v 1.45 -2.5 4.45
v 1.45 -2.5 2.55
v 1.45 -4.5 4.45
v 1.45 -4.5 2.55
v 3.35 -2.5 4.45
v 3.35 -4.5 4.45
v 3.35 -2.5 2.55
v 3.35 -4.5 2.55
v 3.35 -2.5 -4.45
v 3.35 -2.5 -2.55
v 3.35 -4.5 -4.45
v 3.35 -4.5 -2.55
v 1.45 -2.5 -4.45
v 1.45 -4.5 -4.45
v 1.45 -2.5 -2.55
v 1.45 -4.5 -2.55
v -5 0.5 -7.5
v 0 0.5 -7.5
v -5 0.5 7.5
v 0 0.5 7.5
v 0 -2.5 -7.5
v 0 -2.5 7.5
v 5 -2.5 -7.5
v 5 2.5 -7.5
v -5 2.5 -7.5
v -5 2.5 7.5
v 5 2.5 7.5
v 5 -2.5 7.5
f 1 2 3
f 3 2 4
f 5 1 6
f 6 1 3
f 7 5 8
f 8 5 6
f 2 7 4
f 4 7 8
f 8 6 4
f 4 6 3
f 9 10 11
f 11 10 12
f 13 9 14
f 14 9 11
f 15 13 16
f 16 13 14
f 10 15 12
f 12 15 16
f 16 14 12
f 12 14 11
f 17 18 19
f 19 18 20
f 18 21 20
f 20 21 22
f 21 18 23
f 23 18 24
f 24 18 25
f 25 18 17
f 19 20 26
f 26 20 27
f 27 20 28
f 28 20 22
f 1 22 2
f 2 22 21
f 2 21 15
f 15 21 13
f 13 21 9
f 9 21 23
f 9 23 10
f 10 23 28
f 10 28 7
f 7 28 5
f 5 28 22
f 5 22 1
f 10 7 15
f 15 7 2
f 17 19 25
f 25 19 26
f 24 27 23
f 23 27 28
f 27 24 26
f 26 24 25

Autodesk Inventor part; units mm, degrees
ref_plane "YZ Plane" through (0, 0, 0) normal (1, 0, 0) x (0, 1, 0)
ref_plane "XZ Plane" through (0, 0, 0) normal (0, 1, 0) x (-1, 0, 0)
ref_plane "XY Plane" through (0, 0, 0) normal (0, 0, 1) x (1, 0, 0)
sketch "Sketch1" plane through (0, 0, 0) normal (0, 1, 0) x (-1, 0, 0)
  line L0 (-5, 7.5) -> (5, 7.5)
  line L1 (5, 7.5) -> (5, -7.5)
  line L2 (5, -7.5) -> (-5, -7.5)
  line L3 (-5, -7.5) -> (-5, 7.5)
  line L4 (-5, 7.5) -> (5, -7.5) construction
  line L5 (5, 7.5) -> (-5, -7.5) construction
  point P0 (0, 0)
  dimension "d0" = 10
  dimension "d1" = 15
extrude "Extrusion1" add sketch "Sketch1" along normal mid plane 5
sketch "Sketch2" plane through (-5, 2.5, 7.5) normal (0, 0, 1) x (1, 0, 0)
  line L0 (0, 0) -> (0, -5) projected
  line L1 (5, -2) -> (0, -2)
  line L2 (0, -2) -> (0, -5)
  line L3 (0, -5) -> (5, -5)
  line L4 (5, -5) -> (5, -2)
  line L5 (5, -2) -> (0, -5) construction
  line L6 (0, -2) -> (5, -5) construction
  point P0 (5, -2.5)
  point P1 (2.5, -3.5)
  dimension "d4" = 5
  dimension "d13" = 3
extrude "Extrusion2" cut sketch "Sketch2" against normal through all
sketch "Sketch3" plane through (0, -2.5, 0) normal (0, -1, 0) x (1, 0, 0)
  line L0 (3.4, 4.5) -> (1.4, 4.5) construction
  line L1 (1.4, 4.5) -> (1.4, 2.5) construction
  line L2 (1.4, 2.5) -> (3.4, 2.5) construction
  line L3 (3.4, 2.5) -> (3.4, 4.5) construction
  line L4 (3.4, 4.5) -> (1.4, 2.5) construction
  line L5 (1.4, 4.5) -> (3.4, 2.5) construction
  line L6 (3.4, -2.5) -> (1.4, -2.5) construction
  line L7 (1.4, -2.5) -> (1.4, -4.5) construction
  line L8 (1.4, -4.5) -> (3.4, -4.5) construction
  line L9 (3.4, -4.5) -> (3.4, -2.5) construction
  line L10 (3.4, -2.5) -> (1.4, -4.5) construction
  line L11 (1.4, -2.5) -> (3.4, -4.5) construction
  line L12 (2.4, 3.5) -> (2.4, -3.5) construction
  line L13 (3.35, 2.55) -> (1.45, 2.55)
  line L14 (1.45, 2.55) -> (1.45, 4.45)
  line L15 (1.45, 4.45) -> (3.35, 4.45)
  line L16 (3.35, 4.45) -> (3.35, 2.55)
  line L17 (1.45, -2.55) -> (3.35, -2.55)
  line L18 (3.35, -2.55) -> (3.35, -4.45)
  line L19 (3.35, -4.45) -> (1.45, -4.45)
  line L20 (1.45, -4.45) -> (1.45, -2.55)
  line L21 (5, -7.5) -> (5, 7.5) projected
  point P0 (0, 0)
  point P1 (2.4, 0)
  dimension "d7" = 2
  dimension "d8" = 7
  dimension "d11" = 0.05
  dimension "d12" = 0.05
  dimension "d14" = 2.6
extrude "Extrusion3" add sketch "Sketch3" along normal blind 2
properties part number "AlignmentPiece"
